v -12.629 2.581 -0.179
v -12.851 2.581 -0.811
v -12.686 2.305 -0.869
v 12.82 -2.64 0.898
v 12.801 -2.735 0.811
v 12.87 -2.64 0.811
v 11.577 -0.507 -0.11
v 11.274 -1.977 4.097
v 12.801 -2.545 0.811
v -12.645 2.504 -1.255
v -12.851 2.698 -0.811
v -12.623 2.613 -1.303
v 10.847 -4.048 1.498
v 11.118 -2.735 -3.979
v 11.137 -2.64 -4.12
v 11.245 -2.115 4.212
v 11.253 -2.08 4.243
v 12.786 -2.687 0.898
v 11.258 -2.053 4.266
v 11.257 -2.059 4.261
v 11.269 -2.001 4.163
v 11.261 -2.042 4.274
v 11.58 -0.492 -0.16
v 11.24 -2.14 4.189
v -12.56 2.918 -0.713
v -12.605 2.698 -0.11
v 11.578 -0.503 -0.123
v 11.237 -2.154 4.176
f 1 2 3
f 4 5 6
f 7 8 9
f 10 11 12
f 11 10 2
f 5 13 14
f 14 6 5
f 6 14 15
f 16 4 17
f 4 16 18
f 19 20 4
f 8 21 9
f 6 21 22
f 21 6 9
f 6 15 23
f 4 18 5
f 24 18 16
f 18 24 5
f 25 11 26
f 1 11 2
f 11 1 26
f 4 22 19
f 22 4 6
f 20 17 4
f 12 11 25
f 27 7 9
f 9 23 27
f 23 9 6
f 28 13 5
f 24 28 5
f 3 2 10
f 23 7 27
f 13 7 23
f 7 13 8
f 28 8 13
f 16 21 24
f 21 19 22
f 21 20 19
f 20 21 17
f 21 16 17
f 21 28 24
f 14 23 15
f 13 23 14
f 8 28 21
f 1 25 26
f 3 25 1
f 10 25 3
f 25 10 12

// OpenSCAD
// Auto-generated OpenSCAD file

    inner_points = 10*[[0.6618356586031374, 1.0939888076971127, -5.2961835526280225e-12], [1.2115149155156972, 0.2586130153018244, -8.202180877206917e-12], [-1.3549399090757386, -0.23305430929635412, 8.202180877206917e-12], [-0.8052606521631785, -1.0684301016916424, 5.2961835526280225e-12], [-0.3175461590791098, 1.296006765298453, 7.122462682630471e-13], [1.009496957914357, -0.7207688023804228, -6.30345188495525e-12], [-1.1529219514743982, 0.7463275083858931, 6.30345188495525e-12], [0.1741211655190687, -1.2704480592929828, -7.122462682630471e-13], [0.5189873908662057, 0.40146128304364537, 0.707106781182594], [-0.6624123844173823, -0.37590257703726176, 0.7071067811905012], [-0.4603944268160419, 0.6034792406449857, 0.7071067811886024], [0.31696943326486526, -0.5779205346386022, 0.7071067811844928], [0.07113577095691147, 0.7053068776562026, -0.7071067811878903], [0.6208150278694714, -0.13006891473908572, -0.7071067811907962], [-0.764240021438377, 0.15562762074364267, -0.707106781182299], [-0.21456076452581702, -0.6797481716516456, -0.7071067811852049]];

    outer_points = 10*[[-0.8605920804643427, 0.10933680605329854, -0.9770023106782629], [0.05998820059622045, -0.10933680605329854, -1.300597424193143], [-0.05998820059622045, 0.10933680605329854, 1.300597424193143], [0.8605920804643427, -0.10933680605329854, 0.9770023106782629], [-1.2770491924597716, 0.26396240004043003, -0.08109249403790869], [0.9454282073298752, -0.26396240004043003, -0.8623202058031931], [-0.9454282073298752, 0.26396240004043003, 0.8623202058031931], [1.2770491924597716, -0.26396240004043003, 0.08109249403790869], [-0.08861569828117916, 0.689993424377455, -0.7183706093194601], [0.38036719645704675, 0.689993424377455, 0.6158164257108442], [-0.5050728102766082, 0.8446190183645865, 0.17753920732089434], [0.7968243084524758, 0.5353678303903235, -0.2800933909295102], [-0.7719763821831634, -0.5806566183241565, -0.258631701358803], [0.1486038988773996, -0.7993302304307536, -0.582226814873683], [-0.4403553970532671, -0.5806566183241565, 0.6847809984822989], [0.48022488400729596, -0.7993302304307536, 0.3611858849674189]];

    // Convex hull for inner set (I)
    module inner_hull() {
        hull() {
            for (p = inner_points) {
                translate(p) sphere(r=0.1);
            }
        }
    }

    // Convex hull for outer set (O) minus inner hull (O \ I)
    module outer_minus_inner() {
        difference() {
            hull() {
                for (p = outer_points) {
                    translate(p) sphere(r=0.1);
                }
            }
            inner_hull(); // Subtract inner hull
        }
    }

    // Convex hull for outer set (O) minus all translated inner hulls
    module outer_minus_AllTranslationInner() {
        difference() {
            hull() {
                for (p = outer_points) {
                    translate(p) sphere(r=0.1);
                }
            }
            hull() {
                translate([0,0,50]) inner_hull();
                translate([0,0,-50]) inner_hull();
            }; // Subtract translated inner hulls
        }
    }

    // Difference between outer_minus_inner and outer_minus_AllTranslationInner
    module outer_minus_inner_diff() {
        difference() {
            // Outer minus inner
            difference() {
                hull() {
                    for (p = outer_points) {
                        translate(p) sphere(r=0.1);
                    }
                }
                inner_hull();
            }

            // Subtract Outer minus AllTranslationInner
            difference() {
                hull() {
                    for (p = outer_points) {
                        translate(p) sphere(r=0.1);
                    }
                }
                hull() {
                    translate([0,0,50]) inner_hull();
                    translate([0,0,-50]) inner_hull();
                };
            }
        }
    }

    // Rendering all with colors applied
    color([0, 1, 0, 1]) outer_minus_AllTranslationInner(); // Opaque green
    
